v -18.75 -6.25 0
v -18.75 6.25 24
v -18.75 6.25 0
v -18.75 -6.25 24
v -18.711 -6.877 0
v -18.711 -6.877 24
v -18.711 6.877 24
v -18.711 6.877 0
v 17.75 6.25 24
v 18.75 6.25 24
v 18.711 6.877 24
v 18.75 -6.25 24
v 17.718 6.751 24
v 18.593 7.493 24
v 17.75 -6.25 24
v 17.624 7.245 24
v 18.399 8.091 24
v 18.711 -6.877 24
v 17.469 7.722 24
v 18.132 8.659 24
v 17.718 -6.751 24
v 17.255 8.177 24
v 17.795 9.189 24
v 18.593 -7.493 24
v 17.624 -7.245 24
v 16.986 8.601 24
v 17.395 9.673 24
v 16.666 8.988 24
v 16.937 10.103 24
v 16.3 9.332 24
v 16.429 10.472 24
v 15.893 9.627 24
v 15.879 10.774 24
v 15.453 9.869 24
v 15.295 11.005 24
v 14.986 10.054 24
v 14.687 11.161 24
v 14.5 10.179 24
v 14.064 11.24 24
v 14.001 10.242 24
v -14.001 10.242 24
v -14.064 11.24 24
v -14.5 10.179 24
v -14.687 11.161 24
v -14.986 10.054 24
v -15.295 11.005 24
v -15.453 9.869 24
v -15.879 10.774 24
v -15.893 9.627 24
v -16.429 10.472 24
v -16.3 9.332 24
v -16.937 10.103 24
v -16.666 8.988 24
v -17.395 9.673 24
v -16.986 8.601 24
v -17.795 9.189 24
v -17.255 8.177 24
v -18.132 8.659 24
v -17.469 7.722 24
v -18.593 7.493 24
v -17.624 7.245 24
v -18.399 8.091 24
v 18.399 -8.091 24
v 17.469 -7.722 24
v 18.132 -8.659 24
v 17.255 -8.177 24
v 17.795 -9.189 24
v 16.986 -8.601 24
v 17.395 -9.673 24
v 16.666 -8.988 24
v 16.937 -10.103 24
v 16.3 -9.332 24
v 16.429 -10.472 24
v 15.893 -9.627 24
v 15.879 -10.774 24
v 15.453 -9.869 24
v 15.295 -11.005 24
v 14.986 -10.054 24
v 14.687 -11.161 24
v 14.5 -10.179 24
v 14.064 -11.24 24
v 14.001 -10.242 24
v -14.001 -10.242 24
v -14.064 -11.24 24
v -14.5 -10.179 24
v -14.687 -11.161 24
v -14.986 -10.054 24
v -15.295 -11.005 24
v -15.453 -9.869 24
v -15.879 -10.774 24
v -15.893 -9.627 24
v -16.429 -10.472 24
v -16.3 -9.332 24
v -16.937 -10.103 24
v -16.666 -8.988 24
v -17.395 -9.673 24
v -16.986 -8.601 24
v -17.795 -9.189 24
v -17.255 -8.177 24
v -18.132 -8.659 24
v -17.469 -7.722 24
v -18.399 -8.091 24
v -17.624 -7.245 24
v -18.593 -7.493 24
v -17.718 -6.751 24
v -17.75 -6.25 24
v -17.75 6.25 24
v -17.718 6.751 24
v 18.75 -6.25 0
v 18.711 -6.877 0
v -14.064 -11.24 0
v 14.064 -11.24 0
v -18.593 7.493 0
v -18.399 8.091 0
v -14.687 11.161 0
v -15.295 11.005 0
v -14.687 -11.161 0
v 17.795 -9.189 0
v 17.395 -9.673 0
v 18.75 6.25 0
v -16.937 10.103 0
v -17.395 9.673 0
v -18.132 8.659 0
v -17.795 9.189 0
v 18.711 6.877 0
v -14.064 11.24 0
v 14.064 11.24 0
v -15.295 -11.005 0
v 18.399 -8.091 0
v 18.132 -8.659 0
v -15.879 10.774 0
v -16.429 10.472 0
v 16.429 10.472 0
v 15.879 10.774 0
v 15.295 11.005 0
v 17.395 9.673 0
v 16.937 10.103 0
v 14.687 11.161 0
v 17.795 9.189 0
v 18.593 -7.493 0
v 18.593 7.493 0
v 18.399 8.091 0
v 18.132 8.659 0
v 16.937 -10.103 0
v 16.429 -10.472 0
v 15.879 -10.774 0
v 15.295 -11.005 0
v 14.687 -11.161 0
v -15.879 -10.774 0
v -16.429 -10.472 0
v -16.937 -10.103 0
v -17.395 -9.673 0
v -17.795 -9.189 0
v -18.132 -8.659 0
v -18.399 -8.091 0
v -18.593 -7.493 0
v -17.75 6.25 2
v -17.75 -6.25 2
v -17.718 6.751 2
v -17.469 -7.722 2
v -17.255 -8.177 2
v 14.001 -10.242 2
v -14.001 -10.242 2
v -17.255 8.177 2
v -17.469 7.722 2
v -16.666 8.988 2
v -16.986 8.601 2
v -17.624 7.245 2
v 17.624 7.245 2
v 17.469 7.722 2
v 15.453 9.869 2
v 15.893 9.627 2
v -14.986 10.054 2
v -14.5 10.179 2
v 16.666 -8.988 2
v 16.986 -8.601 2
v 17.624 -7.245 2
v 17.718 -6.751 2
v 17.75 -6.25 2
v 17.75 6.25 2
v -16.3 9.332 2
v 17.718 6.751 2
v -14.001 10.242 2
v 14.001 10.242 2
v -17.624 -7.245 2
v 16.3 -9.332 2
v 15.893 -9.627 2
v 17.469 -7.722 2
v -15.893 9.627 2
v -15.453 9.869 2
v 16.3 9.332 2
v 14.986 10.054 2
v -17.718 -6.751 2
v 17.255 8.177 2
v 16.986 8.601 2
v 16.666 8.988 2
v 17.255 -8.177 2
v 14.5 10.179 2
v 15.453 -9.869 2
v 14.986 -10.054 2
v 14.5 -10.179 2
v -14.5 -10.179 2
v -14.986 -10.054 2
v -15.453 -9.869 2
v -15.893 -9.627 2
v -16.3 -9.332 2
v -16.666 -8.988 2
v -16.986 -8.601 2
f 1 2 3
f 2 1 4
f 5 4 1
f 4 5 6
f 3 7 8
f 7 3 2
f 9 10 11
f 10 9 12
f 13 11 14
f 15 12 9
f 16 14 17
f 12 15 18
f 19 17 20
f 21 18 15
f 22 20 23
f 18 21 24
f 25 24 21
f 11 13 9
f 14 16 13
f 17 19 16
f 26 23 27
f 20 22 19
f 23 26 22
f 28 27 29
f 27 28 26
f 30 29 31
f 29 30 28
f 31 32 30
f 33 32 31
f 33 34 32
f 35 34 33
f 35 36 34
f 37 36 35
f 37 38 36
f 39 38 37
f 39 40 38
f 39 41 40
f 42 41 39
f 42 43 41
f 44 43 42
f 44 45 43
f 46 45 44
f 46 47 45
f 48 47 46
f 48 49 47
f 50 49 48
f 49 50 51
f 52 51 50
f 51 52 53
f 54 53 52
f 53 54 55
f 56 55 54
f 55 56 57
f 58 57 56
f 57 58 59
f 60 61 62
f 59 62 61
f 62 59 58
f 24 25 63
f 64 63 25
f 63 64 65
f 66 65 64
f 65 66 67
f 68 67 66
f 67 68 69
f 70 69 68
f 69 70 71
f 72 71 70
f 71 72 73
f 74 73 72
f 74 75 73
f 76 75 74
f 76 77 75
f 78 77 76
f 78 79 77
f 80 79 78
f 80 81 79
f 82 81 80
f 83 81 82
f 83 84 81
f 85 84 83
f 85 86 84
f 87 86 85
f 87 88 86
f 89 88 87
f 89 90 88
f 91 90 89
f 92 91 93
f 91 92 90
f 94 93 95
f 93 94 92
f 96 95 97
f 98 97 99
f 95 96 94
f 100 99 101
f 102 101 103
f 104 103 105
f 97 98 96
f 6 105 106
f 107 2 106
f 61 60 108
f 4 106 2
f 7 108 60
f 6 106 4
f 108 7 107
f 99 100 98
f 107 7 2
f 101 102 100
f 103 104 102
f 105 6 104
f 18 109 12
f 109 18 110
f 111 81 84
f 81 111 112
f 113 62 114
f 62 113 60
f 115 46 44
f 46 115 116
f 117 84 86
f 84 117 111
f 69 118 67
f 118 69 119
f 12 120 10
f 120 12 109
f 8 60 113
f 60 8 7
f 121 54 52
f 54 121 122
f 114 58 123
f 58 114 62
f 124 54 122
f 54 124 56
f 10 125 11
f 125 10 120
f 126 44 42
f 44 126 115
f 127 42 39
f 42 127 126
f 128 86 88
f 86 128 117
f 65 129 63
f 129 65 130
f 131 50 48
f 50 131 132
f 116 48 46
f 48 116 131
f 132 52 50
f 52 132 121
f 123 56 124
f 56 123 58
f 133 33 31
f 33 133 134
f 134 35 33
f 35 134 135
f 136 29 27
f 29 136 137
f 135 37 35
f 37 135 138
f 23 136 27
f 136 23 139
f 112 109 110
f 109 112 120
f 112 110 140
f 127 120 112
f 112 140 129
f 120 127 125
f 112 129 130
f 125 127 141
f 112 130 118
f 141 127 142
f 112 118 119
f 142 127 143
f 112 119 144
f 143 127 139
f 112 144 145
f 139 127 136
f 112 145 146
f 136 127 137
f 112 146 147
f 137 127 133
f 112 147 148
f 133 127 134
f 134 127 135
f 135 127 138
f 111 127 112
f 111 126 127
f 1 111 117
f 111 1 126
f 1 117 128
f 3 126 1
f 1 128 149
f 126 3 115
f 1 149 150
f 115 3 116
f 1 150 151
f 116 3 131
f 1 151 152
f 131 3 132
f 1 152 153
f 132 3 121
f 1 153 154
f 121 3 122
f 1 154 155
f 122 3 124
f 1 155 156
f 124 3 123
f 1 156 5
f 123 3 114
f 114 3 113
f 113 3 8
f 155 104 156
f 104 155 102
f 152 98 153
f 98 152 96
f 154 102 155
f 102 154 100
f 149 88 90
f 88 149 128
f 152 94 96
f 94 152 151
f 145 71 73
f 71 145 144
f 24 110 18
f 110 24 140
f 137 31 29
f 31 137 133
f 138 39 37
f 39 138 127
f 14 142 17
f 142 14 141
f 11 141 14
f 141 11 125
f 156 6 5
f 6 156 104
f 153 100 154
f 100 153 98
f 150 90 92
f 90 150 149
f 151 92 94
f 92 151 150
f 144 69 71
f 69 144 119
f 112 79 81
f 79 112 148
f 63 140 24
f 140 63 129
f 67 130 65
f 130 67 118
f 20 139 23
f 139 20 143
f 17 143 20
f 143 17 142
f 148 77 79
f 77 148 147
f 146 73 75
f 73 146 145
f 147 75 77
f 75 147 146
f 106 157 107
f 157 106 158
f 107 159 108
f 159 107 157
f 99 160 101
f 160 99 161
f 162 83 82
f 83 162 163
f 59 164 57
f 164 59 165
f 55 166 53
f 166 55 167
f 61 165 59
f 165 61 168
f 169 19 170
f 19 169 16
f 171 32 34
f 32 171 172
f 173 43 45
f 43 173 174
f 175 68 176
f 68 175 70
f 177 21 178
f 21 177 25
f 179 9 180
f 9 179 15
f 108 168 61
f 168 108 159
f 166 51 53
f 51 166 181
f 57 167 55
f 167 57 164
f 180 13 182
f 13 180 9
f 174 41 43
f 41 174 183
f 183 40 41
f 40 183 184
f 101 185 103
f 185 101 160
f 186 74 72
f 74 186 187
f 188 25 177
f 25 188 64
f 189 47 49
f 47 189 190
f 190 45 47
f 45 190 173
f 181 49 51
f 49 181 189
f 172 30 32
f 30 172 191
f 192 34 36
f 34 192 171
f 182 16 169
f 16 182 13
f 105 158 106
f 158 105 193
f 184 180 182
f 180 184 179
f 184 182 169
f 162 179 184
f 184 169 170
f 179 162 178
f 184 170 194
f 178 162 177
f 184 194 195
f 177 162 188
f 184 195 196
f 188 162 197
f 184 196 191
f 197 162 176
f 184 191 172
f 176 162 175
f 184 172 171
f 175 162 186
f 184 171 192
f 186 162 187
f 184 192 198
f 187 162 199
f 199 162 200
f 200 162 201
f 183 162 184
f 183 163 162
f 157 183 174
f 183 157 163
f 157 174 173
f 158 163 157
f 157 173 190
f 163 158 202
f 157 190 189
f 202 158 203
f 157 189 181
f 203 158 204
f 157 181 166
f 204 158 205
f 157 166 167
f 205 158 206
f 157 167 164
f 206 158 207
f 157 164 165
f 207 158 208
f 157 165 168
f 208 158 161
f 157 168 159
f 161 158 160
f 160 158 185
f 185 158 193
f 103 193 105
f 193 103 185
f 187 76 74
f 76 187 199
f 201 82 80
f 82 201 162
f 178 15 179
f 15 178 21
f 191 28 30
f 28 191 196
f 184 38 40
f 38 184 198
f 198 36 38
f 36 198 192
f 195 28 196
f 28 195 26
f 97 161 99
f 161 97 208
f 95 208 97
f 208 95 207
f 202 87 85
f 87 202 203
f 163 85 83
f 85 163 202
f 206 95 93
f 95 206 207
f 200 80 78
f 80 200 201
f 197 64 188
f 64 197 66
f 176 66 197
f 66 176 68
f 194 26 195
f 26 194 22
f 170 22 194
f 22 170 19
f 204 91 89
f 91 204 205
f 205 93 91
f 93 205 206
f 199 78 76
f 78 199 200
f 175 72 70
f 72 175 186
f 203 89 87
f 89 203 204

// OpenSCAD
$fn = 50;


difference() {
	union() {
		hull() {
			translate(v = [-13.7500000000, 6.2500000000, 0]) {
				cylinder(h = 24, r = 5);
			}
			translate(v = [13.7500000000, 6.2500000000, 0]) {
				cylinder(h = 24, r = 5);
			}
			translate(v = [-13.7500000000, -6.2500000000, 0]) {
				cylinder(h = 24, r = 5);
			}
			translate(v = [13.7500000000, -6.2500000000, 0]) {
				cylinder(h = 24, r = 5);
			}
		}
	}
	union() {
		translate(v = [0, 0, 2]) {
			hull() {
				translate(v = [-13.7500000000, 6.2500000000, 0]) {
					cylinder(h = 22, r = 4);
				}
				translate(v = [13.7500000000, 6.2500000000, 0]) {
					cylinder(h = 22, r = 4);
				}
				translate(v = [-13.7500000000, -6.2500000000, 0]) {
					cylinder(h = 22, r = 4);
				}
				translate(v = [13.7500000000, -6.2500000000, 0]) {
					cylinder(h = 22, r = 4);
				}
			}
		}
	}
}
